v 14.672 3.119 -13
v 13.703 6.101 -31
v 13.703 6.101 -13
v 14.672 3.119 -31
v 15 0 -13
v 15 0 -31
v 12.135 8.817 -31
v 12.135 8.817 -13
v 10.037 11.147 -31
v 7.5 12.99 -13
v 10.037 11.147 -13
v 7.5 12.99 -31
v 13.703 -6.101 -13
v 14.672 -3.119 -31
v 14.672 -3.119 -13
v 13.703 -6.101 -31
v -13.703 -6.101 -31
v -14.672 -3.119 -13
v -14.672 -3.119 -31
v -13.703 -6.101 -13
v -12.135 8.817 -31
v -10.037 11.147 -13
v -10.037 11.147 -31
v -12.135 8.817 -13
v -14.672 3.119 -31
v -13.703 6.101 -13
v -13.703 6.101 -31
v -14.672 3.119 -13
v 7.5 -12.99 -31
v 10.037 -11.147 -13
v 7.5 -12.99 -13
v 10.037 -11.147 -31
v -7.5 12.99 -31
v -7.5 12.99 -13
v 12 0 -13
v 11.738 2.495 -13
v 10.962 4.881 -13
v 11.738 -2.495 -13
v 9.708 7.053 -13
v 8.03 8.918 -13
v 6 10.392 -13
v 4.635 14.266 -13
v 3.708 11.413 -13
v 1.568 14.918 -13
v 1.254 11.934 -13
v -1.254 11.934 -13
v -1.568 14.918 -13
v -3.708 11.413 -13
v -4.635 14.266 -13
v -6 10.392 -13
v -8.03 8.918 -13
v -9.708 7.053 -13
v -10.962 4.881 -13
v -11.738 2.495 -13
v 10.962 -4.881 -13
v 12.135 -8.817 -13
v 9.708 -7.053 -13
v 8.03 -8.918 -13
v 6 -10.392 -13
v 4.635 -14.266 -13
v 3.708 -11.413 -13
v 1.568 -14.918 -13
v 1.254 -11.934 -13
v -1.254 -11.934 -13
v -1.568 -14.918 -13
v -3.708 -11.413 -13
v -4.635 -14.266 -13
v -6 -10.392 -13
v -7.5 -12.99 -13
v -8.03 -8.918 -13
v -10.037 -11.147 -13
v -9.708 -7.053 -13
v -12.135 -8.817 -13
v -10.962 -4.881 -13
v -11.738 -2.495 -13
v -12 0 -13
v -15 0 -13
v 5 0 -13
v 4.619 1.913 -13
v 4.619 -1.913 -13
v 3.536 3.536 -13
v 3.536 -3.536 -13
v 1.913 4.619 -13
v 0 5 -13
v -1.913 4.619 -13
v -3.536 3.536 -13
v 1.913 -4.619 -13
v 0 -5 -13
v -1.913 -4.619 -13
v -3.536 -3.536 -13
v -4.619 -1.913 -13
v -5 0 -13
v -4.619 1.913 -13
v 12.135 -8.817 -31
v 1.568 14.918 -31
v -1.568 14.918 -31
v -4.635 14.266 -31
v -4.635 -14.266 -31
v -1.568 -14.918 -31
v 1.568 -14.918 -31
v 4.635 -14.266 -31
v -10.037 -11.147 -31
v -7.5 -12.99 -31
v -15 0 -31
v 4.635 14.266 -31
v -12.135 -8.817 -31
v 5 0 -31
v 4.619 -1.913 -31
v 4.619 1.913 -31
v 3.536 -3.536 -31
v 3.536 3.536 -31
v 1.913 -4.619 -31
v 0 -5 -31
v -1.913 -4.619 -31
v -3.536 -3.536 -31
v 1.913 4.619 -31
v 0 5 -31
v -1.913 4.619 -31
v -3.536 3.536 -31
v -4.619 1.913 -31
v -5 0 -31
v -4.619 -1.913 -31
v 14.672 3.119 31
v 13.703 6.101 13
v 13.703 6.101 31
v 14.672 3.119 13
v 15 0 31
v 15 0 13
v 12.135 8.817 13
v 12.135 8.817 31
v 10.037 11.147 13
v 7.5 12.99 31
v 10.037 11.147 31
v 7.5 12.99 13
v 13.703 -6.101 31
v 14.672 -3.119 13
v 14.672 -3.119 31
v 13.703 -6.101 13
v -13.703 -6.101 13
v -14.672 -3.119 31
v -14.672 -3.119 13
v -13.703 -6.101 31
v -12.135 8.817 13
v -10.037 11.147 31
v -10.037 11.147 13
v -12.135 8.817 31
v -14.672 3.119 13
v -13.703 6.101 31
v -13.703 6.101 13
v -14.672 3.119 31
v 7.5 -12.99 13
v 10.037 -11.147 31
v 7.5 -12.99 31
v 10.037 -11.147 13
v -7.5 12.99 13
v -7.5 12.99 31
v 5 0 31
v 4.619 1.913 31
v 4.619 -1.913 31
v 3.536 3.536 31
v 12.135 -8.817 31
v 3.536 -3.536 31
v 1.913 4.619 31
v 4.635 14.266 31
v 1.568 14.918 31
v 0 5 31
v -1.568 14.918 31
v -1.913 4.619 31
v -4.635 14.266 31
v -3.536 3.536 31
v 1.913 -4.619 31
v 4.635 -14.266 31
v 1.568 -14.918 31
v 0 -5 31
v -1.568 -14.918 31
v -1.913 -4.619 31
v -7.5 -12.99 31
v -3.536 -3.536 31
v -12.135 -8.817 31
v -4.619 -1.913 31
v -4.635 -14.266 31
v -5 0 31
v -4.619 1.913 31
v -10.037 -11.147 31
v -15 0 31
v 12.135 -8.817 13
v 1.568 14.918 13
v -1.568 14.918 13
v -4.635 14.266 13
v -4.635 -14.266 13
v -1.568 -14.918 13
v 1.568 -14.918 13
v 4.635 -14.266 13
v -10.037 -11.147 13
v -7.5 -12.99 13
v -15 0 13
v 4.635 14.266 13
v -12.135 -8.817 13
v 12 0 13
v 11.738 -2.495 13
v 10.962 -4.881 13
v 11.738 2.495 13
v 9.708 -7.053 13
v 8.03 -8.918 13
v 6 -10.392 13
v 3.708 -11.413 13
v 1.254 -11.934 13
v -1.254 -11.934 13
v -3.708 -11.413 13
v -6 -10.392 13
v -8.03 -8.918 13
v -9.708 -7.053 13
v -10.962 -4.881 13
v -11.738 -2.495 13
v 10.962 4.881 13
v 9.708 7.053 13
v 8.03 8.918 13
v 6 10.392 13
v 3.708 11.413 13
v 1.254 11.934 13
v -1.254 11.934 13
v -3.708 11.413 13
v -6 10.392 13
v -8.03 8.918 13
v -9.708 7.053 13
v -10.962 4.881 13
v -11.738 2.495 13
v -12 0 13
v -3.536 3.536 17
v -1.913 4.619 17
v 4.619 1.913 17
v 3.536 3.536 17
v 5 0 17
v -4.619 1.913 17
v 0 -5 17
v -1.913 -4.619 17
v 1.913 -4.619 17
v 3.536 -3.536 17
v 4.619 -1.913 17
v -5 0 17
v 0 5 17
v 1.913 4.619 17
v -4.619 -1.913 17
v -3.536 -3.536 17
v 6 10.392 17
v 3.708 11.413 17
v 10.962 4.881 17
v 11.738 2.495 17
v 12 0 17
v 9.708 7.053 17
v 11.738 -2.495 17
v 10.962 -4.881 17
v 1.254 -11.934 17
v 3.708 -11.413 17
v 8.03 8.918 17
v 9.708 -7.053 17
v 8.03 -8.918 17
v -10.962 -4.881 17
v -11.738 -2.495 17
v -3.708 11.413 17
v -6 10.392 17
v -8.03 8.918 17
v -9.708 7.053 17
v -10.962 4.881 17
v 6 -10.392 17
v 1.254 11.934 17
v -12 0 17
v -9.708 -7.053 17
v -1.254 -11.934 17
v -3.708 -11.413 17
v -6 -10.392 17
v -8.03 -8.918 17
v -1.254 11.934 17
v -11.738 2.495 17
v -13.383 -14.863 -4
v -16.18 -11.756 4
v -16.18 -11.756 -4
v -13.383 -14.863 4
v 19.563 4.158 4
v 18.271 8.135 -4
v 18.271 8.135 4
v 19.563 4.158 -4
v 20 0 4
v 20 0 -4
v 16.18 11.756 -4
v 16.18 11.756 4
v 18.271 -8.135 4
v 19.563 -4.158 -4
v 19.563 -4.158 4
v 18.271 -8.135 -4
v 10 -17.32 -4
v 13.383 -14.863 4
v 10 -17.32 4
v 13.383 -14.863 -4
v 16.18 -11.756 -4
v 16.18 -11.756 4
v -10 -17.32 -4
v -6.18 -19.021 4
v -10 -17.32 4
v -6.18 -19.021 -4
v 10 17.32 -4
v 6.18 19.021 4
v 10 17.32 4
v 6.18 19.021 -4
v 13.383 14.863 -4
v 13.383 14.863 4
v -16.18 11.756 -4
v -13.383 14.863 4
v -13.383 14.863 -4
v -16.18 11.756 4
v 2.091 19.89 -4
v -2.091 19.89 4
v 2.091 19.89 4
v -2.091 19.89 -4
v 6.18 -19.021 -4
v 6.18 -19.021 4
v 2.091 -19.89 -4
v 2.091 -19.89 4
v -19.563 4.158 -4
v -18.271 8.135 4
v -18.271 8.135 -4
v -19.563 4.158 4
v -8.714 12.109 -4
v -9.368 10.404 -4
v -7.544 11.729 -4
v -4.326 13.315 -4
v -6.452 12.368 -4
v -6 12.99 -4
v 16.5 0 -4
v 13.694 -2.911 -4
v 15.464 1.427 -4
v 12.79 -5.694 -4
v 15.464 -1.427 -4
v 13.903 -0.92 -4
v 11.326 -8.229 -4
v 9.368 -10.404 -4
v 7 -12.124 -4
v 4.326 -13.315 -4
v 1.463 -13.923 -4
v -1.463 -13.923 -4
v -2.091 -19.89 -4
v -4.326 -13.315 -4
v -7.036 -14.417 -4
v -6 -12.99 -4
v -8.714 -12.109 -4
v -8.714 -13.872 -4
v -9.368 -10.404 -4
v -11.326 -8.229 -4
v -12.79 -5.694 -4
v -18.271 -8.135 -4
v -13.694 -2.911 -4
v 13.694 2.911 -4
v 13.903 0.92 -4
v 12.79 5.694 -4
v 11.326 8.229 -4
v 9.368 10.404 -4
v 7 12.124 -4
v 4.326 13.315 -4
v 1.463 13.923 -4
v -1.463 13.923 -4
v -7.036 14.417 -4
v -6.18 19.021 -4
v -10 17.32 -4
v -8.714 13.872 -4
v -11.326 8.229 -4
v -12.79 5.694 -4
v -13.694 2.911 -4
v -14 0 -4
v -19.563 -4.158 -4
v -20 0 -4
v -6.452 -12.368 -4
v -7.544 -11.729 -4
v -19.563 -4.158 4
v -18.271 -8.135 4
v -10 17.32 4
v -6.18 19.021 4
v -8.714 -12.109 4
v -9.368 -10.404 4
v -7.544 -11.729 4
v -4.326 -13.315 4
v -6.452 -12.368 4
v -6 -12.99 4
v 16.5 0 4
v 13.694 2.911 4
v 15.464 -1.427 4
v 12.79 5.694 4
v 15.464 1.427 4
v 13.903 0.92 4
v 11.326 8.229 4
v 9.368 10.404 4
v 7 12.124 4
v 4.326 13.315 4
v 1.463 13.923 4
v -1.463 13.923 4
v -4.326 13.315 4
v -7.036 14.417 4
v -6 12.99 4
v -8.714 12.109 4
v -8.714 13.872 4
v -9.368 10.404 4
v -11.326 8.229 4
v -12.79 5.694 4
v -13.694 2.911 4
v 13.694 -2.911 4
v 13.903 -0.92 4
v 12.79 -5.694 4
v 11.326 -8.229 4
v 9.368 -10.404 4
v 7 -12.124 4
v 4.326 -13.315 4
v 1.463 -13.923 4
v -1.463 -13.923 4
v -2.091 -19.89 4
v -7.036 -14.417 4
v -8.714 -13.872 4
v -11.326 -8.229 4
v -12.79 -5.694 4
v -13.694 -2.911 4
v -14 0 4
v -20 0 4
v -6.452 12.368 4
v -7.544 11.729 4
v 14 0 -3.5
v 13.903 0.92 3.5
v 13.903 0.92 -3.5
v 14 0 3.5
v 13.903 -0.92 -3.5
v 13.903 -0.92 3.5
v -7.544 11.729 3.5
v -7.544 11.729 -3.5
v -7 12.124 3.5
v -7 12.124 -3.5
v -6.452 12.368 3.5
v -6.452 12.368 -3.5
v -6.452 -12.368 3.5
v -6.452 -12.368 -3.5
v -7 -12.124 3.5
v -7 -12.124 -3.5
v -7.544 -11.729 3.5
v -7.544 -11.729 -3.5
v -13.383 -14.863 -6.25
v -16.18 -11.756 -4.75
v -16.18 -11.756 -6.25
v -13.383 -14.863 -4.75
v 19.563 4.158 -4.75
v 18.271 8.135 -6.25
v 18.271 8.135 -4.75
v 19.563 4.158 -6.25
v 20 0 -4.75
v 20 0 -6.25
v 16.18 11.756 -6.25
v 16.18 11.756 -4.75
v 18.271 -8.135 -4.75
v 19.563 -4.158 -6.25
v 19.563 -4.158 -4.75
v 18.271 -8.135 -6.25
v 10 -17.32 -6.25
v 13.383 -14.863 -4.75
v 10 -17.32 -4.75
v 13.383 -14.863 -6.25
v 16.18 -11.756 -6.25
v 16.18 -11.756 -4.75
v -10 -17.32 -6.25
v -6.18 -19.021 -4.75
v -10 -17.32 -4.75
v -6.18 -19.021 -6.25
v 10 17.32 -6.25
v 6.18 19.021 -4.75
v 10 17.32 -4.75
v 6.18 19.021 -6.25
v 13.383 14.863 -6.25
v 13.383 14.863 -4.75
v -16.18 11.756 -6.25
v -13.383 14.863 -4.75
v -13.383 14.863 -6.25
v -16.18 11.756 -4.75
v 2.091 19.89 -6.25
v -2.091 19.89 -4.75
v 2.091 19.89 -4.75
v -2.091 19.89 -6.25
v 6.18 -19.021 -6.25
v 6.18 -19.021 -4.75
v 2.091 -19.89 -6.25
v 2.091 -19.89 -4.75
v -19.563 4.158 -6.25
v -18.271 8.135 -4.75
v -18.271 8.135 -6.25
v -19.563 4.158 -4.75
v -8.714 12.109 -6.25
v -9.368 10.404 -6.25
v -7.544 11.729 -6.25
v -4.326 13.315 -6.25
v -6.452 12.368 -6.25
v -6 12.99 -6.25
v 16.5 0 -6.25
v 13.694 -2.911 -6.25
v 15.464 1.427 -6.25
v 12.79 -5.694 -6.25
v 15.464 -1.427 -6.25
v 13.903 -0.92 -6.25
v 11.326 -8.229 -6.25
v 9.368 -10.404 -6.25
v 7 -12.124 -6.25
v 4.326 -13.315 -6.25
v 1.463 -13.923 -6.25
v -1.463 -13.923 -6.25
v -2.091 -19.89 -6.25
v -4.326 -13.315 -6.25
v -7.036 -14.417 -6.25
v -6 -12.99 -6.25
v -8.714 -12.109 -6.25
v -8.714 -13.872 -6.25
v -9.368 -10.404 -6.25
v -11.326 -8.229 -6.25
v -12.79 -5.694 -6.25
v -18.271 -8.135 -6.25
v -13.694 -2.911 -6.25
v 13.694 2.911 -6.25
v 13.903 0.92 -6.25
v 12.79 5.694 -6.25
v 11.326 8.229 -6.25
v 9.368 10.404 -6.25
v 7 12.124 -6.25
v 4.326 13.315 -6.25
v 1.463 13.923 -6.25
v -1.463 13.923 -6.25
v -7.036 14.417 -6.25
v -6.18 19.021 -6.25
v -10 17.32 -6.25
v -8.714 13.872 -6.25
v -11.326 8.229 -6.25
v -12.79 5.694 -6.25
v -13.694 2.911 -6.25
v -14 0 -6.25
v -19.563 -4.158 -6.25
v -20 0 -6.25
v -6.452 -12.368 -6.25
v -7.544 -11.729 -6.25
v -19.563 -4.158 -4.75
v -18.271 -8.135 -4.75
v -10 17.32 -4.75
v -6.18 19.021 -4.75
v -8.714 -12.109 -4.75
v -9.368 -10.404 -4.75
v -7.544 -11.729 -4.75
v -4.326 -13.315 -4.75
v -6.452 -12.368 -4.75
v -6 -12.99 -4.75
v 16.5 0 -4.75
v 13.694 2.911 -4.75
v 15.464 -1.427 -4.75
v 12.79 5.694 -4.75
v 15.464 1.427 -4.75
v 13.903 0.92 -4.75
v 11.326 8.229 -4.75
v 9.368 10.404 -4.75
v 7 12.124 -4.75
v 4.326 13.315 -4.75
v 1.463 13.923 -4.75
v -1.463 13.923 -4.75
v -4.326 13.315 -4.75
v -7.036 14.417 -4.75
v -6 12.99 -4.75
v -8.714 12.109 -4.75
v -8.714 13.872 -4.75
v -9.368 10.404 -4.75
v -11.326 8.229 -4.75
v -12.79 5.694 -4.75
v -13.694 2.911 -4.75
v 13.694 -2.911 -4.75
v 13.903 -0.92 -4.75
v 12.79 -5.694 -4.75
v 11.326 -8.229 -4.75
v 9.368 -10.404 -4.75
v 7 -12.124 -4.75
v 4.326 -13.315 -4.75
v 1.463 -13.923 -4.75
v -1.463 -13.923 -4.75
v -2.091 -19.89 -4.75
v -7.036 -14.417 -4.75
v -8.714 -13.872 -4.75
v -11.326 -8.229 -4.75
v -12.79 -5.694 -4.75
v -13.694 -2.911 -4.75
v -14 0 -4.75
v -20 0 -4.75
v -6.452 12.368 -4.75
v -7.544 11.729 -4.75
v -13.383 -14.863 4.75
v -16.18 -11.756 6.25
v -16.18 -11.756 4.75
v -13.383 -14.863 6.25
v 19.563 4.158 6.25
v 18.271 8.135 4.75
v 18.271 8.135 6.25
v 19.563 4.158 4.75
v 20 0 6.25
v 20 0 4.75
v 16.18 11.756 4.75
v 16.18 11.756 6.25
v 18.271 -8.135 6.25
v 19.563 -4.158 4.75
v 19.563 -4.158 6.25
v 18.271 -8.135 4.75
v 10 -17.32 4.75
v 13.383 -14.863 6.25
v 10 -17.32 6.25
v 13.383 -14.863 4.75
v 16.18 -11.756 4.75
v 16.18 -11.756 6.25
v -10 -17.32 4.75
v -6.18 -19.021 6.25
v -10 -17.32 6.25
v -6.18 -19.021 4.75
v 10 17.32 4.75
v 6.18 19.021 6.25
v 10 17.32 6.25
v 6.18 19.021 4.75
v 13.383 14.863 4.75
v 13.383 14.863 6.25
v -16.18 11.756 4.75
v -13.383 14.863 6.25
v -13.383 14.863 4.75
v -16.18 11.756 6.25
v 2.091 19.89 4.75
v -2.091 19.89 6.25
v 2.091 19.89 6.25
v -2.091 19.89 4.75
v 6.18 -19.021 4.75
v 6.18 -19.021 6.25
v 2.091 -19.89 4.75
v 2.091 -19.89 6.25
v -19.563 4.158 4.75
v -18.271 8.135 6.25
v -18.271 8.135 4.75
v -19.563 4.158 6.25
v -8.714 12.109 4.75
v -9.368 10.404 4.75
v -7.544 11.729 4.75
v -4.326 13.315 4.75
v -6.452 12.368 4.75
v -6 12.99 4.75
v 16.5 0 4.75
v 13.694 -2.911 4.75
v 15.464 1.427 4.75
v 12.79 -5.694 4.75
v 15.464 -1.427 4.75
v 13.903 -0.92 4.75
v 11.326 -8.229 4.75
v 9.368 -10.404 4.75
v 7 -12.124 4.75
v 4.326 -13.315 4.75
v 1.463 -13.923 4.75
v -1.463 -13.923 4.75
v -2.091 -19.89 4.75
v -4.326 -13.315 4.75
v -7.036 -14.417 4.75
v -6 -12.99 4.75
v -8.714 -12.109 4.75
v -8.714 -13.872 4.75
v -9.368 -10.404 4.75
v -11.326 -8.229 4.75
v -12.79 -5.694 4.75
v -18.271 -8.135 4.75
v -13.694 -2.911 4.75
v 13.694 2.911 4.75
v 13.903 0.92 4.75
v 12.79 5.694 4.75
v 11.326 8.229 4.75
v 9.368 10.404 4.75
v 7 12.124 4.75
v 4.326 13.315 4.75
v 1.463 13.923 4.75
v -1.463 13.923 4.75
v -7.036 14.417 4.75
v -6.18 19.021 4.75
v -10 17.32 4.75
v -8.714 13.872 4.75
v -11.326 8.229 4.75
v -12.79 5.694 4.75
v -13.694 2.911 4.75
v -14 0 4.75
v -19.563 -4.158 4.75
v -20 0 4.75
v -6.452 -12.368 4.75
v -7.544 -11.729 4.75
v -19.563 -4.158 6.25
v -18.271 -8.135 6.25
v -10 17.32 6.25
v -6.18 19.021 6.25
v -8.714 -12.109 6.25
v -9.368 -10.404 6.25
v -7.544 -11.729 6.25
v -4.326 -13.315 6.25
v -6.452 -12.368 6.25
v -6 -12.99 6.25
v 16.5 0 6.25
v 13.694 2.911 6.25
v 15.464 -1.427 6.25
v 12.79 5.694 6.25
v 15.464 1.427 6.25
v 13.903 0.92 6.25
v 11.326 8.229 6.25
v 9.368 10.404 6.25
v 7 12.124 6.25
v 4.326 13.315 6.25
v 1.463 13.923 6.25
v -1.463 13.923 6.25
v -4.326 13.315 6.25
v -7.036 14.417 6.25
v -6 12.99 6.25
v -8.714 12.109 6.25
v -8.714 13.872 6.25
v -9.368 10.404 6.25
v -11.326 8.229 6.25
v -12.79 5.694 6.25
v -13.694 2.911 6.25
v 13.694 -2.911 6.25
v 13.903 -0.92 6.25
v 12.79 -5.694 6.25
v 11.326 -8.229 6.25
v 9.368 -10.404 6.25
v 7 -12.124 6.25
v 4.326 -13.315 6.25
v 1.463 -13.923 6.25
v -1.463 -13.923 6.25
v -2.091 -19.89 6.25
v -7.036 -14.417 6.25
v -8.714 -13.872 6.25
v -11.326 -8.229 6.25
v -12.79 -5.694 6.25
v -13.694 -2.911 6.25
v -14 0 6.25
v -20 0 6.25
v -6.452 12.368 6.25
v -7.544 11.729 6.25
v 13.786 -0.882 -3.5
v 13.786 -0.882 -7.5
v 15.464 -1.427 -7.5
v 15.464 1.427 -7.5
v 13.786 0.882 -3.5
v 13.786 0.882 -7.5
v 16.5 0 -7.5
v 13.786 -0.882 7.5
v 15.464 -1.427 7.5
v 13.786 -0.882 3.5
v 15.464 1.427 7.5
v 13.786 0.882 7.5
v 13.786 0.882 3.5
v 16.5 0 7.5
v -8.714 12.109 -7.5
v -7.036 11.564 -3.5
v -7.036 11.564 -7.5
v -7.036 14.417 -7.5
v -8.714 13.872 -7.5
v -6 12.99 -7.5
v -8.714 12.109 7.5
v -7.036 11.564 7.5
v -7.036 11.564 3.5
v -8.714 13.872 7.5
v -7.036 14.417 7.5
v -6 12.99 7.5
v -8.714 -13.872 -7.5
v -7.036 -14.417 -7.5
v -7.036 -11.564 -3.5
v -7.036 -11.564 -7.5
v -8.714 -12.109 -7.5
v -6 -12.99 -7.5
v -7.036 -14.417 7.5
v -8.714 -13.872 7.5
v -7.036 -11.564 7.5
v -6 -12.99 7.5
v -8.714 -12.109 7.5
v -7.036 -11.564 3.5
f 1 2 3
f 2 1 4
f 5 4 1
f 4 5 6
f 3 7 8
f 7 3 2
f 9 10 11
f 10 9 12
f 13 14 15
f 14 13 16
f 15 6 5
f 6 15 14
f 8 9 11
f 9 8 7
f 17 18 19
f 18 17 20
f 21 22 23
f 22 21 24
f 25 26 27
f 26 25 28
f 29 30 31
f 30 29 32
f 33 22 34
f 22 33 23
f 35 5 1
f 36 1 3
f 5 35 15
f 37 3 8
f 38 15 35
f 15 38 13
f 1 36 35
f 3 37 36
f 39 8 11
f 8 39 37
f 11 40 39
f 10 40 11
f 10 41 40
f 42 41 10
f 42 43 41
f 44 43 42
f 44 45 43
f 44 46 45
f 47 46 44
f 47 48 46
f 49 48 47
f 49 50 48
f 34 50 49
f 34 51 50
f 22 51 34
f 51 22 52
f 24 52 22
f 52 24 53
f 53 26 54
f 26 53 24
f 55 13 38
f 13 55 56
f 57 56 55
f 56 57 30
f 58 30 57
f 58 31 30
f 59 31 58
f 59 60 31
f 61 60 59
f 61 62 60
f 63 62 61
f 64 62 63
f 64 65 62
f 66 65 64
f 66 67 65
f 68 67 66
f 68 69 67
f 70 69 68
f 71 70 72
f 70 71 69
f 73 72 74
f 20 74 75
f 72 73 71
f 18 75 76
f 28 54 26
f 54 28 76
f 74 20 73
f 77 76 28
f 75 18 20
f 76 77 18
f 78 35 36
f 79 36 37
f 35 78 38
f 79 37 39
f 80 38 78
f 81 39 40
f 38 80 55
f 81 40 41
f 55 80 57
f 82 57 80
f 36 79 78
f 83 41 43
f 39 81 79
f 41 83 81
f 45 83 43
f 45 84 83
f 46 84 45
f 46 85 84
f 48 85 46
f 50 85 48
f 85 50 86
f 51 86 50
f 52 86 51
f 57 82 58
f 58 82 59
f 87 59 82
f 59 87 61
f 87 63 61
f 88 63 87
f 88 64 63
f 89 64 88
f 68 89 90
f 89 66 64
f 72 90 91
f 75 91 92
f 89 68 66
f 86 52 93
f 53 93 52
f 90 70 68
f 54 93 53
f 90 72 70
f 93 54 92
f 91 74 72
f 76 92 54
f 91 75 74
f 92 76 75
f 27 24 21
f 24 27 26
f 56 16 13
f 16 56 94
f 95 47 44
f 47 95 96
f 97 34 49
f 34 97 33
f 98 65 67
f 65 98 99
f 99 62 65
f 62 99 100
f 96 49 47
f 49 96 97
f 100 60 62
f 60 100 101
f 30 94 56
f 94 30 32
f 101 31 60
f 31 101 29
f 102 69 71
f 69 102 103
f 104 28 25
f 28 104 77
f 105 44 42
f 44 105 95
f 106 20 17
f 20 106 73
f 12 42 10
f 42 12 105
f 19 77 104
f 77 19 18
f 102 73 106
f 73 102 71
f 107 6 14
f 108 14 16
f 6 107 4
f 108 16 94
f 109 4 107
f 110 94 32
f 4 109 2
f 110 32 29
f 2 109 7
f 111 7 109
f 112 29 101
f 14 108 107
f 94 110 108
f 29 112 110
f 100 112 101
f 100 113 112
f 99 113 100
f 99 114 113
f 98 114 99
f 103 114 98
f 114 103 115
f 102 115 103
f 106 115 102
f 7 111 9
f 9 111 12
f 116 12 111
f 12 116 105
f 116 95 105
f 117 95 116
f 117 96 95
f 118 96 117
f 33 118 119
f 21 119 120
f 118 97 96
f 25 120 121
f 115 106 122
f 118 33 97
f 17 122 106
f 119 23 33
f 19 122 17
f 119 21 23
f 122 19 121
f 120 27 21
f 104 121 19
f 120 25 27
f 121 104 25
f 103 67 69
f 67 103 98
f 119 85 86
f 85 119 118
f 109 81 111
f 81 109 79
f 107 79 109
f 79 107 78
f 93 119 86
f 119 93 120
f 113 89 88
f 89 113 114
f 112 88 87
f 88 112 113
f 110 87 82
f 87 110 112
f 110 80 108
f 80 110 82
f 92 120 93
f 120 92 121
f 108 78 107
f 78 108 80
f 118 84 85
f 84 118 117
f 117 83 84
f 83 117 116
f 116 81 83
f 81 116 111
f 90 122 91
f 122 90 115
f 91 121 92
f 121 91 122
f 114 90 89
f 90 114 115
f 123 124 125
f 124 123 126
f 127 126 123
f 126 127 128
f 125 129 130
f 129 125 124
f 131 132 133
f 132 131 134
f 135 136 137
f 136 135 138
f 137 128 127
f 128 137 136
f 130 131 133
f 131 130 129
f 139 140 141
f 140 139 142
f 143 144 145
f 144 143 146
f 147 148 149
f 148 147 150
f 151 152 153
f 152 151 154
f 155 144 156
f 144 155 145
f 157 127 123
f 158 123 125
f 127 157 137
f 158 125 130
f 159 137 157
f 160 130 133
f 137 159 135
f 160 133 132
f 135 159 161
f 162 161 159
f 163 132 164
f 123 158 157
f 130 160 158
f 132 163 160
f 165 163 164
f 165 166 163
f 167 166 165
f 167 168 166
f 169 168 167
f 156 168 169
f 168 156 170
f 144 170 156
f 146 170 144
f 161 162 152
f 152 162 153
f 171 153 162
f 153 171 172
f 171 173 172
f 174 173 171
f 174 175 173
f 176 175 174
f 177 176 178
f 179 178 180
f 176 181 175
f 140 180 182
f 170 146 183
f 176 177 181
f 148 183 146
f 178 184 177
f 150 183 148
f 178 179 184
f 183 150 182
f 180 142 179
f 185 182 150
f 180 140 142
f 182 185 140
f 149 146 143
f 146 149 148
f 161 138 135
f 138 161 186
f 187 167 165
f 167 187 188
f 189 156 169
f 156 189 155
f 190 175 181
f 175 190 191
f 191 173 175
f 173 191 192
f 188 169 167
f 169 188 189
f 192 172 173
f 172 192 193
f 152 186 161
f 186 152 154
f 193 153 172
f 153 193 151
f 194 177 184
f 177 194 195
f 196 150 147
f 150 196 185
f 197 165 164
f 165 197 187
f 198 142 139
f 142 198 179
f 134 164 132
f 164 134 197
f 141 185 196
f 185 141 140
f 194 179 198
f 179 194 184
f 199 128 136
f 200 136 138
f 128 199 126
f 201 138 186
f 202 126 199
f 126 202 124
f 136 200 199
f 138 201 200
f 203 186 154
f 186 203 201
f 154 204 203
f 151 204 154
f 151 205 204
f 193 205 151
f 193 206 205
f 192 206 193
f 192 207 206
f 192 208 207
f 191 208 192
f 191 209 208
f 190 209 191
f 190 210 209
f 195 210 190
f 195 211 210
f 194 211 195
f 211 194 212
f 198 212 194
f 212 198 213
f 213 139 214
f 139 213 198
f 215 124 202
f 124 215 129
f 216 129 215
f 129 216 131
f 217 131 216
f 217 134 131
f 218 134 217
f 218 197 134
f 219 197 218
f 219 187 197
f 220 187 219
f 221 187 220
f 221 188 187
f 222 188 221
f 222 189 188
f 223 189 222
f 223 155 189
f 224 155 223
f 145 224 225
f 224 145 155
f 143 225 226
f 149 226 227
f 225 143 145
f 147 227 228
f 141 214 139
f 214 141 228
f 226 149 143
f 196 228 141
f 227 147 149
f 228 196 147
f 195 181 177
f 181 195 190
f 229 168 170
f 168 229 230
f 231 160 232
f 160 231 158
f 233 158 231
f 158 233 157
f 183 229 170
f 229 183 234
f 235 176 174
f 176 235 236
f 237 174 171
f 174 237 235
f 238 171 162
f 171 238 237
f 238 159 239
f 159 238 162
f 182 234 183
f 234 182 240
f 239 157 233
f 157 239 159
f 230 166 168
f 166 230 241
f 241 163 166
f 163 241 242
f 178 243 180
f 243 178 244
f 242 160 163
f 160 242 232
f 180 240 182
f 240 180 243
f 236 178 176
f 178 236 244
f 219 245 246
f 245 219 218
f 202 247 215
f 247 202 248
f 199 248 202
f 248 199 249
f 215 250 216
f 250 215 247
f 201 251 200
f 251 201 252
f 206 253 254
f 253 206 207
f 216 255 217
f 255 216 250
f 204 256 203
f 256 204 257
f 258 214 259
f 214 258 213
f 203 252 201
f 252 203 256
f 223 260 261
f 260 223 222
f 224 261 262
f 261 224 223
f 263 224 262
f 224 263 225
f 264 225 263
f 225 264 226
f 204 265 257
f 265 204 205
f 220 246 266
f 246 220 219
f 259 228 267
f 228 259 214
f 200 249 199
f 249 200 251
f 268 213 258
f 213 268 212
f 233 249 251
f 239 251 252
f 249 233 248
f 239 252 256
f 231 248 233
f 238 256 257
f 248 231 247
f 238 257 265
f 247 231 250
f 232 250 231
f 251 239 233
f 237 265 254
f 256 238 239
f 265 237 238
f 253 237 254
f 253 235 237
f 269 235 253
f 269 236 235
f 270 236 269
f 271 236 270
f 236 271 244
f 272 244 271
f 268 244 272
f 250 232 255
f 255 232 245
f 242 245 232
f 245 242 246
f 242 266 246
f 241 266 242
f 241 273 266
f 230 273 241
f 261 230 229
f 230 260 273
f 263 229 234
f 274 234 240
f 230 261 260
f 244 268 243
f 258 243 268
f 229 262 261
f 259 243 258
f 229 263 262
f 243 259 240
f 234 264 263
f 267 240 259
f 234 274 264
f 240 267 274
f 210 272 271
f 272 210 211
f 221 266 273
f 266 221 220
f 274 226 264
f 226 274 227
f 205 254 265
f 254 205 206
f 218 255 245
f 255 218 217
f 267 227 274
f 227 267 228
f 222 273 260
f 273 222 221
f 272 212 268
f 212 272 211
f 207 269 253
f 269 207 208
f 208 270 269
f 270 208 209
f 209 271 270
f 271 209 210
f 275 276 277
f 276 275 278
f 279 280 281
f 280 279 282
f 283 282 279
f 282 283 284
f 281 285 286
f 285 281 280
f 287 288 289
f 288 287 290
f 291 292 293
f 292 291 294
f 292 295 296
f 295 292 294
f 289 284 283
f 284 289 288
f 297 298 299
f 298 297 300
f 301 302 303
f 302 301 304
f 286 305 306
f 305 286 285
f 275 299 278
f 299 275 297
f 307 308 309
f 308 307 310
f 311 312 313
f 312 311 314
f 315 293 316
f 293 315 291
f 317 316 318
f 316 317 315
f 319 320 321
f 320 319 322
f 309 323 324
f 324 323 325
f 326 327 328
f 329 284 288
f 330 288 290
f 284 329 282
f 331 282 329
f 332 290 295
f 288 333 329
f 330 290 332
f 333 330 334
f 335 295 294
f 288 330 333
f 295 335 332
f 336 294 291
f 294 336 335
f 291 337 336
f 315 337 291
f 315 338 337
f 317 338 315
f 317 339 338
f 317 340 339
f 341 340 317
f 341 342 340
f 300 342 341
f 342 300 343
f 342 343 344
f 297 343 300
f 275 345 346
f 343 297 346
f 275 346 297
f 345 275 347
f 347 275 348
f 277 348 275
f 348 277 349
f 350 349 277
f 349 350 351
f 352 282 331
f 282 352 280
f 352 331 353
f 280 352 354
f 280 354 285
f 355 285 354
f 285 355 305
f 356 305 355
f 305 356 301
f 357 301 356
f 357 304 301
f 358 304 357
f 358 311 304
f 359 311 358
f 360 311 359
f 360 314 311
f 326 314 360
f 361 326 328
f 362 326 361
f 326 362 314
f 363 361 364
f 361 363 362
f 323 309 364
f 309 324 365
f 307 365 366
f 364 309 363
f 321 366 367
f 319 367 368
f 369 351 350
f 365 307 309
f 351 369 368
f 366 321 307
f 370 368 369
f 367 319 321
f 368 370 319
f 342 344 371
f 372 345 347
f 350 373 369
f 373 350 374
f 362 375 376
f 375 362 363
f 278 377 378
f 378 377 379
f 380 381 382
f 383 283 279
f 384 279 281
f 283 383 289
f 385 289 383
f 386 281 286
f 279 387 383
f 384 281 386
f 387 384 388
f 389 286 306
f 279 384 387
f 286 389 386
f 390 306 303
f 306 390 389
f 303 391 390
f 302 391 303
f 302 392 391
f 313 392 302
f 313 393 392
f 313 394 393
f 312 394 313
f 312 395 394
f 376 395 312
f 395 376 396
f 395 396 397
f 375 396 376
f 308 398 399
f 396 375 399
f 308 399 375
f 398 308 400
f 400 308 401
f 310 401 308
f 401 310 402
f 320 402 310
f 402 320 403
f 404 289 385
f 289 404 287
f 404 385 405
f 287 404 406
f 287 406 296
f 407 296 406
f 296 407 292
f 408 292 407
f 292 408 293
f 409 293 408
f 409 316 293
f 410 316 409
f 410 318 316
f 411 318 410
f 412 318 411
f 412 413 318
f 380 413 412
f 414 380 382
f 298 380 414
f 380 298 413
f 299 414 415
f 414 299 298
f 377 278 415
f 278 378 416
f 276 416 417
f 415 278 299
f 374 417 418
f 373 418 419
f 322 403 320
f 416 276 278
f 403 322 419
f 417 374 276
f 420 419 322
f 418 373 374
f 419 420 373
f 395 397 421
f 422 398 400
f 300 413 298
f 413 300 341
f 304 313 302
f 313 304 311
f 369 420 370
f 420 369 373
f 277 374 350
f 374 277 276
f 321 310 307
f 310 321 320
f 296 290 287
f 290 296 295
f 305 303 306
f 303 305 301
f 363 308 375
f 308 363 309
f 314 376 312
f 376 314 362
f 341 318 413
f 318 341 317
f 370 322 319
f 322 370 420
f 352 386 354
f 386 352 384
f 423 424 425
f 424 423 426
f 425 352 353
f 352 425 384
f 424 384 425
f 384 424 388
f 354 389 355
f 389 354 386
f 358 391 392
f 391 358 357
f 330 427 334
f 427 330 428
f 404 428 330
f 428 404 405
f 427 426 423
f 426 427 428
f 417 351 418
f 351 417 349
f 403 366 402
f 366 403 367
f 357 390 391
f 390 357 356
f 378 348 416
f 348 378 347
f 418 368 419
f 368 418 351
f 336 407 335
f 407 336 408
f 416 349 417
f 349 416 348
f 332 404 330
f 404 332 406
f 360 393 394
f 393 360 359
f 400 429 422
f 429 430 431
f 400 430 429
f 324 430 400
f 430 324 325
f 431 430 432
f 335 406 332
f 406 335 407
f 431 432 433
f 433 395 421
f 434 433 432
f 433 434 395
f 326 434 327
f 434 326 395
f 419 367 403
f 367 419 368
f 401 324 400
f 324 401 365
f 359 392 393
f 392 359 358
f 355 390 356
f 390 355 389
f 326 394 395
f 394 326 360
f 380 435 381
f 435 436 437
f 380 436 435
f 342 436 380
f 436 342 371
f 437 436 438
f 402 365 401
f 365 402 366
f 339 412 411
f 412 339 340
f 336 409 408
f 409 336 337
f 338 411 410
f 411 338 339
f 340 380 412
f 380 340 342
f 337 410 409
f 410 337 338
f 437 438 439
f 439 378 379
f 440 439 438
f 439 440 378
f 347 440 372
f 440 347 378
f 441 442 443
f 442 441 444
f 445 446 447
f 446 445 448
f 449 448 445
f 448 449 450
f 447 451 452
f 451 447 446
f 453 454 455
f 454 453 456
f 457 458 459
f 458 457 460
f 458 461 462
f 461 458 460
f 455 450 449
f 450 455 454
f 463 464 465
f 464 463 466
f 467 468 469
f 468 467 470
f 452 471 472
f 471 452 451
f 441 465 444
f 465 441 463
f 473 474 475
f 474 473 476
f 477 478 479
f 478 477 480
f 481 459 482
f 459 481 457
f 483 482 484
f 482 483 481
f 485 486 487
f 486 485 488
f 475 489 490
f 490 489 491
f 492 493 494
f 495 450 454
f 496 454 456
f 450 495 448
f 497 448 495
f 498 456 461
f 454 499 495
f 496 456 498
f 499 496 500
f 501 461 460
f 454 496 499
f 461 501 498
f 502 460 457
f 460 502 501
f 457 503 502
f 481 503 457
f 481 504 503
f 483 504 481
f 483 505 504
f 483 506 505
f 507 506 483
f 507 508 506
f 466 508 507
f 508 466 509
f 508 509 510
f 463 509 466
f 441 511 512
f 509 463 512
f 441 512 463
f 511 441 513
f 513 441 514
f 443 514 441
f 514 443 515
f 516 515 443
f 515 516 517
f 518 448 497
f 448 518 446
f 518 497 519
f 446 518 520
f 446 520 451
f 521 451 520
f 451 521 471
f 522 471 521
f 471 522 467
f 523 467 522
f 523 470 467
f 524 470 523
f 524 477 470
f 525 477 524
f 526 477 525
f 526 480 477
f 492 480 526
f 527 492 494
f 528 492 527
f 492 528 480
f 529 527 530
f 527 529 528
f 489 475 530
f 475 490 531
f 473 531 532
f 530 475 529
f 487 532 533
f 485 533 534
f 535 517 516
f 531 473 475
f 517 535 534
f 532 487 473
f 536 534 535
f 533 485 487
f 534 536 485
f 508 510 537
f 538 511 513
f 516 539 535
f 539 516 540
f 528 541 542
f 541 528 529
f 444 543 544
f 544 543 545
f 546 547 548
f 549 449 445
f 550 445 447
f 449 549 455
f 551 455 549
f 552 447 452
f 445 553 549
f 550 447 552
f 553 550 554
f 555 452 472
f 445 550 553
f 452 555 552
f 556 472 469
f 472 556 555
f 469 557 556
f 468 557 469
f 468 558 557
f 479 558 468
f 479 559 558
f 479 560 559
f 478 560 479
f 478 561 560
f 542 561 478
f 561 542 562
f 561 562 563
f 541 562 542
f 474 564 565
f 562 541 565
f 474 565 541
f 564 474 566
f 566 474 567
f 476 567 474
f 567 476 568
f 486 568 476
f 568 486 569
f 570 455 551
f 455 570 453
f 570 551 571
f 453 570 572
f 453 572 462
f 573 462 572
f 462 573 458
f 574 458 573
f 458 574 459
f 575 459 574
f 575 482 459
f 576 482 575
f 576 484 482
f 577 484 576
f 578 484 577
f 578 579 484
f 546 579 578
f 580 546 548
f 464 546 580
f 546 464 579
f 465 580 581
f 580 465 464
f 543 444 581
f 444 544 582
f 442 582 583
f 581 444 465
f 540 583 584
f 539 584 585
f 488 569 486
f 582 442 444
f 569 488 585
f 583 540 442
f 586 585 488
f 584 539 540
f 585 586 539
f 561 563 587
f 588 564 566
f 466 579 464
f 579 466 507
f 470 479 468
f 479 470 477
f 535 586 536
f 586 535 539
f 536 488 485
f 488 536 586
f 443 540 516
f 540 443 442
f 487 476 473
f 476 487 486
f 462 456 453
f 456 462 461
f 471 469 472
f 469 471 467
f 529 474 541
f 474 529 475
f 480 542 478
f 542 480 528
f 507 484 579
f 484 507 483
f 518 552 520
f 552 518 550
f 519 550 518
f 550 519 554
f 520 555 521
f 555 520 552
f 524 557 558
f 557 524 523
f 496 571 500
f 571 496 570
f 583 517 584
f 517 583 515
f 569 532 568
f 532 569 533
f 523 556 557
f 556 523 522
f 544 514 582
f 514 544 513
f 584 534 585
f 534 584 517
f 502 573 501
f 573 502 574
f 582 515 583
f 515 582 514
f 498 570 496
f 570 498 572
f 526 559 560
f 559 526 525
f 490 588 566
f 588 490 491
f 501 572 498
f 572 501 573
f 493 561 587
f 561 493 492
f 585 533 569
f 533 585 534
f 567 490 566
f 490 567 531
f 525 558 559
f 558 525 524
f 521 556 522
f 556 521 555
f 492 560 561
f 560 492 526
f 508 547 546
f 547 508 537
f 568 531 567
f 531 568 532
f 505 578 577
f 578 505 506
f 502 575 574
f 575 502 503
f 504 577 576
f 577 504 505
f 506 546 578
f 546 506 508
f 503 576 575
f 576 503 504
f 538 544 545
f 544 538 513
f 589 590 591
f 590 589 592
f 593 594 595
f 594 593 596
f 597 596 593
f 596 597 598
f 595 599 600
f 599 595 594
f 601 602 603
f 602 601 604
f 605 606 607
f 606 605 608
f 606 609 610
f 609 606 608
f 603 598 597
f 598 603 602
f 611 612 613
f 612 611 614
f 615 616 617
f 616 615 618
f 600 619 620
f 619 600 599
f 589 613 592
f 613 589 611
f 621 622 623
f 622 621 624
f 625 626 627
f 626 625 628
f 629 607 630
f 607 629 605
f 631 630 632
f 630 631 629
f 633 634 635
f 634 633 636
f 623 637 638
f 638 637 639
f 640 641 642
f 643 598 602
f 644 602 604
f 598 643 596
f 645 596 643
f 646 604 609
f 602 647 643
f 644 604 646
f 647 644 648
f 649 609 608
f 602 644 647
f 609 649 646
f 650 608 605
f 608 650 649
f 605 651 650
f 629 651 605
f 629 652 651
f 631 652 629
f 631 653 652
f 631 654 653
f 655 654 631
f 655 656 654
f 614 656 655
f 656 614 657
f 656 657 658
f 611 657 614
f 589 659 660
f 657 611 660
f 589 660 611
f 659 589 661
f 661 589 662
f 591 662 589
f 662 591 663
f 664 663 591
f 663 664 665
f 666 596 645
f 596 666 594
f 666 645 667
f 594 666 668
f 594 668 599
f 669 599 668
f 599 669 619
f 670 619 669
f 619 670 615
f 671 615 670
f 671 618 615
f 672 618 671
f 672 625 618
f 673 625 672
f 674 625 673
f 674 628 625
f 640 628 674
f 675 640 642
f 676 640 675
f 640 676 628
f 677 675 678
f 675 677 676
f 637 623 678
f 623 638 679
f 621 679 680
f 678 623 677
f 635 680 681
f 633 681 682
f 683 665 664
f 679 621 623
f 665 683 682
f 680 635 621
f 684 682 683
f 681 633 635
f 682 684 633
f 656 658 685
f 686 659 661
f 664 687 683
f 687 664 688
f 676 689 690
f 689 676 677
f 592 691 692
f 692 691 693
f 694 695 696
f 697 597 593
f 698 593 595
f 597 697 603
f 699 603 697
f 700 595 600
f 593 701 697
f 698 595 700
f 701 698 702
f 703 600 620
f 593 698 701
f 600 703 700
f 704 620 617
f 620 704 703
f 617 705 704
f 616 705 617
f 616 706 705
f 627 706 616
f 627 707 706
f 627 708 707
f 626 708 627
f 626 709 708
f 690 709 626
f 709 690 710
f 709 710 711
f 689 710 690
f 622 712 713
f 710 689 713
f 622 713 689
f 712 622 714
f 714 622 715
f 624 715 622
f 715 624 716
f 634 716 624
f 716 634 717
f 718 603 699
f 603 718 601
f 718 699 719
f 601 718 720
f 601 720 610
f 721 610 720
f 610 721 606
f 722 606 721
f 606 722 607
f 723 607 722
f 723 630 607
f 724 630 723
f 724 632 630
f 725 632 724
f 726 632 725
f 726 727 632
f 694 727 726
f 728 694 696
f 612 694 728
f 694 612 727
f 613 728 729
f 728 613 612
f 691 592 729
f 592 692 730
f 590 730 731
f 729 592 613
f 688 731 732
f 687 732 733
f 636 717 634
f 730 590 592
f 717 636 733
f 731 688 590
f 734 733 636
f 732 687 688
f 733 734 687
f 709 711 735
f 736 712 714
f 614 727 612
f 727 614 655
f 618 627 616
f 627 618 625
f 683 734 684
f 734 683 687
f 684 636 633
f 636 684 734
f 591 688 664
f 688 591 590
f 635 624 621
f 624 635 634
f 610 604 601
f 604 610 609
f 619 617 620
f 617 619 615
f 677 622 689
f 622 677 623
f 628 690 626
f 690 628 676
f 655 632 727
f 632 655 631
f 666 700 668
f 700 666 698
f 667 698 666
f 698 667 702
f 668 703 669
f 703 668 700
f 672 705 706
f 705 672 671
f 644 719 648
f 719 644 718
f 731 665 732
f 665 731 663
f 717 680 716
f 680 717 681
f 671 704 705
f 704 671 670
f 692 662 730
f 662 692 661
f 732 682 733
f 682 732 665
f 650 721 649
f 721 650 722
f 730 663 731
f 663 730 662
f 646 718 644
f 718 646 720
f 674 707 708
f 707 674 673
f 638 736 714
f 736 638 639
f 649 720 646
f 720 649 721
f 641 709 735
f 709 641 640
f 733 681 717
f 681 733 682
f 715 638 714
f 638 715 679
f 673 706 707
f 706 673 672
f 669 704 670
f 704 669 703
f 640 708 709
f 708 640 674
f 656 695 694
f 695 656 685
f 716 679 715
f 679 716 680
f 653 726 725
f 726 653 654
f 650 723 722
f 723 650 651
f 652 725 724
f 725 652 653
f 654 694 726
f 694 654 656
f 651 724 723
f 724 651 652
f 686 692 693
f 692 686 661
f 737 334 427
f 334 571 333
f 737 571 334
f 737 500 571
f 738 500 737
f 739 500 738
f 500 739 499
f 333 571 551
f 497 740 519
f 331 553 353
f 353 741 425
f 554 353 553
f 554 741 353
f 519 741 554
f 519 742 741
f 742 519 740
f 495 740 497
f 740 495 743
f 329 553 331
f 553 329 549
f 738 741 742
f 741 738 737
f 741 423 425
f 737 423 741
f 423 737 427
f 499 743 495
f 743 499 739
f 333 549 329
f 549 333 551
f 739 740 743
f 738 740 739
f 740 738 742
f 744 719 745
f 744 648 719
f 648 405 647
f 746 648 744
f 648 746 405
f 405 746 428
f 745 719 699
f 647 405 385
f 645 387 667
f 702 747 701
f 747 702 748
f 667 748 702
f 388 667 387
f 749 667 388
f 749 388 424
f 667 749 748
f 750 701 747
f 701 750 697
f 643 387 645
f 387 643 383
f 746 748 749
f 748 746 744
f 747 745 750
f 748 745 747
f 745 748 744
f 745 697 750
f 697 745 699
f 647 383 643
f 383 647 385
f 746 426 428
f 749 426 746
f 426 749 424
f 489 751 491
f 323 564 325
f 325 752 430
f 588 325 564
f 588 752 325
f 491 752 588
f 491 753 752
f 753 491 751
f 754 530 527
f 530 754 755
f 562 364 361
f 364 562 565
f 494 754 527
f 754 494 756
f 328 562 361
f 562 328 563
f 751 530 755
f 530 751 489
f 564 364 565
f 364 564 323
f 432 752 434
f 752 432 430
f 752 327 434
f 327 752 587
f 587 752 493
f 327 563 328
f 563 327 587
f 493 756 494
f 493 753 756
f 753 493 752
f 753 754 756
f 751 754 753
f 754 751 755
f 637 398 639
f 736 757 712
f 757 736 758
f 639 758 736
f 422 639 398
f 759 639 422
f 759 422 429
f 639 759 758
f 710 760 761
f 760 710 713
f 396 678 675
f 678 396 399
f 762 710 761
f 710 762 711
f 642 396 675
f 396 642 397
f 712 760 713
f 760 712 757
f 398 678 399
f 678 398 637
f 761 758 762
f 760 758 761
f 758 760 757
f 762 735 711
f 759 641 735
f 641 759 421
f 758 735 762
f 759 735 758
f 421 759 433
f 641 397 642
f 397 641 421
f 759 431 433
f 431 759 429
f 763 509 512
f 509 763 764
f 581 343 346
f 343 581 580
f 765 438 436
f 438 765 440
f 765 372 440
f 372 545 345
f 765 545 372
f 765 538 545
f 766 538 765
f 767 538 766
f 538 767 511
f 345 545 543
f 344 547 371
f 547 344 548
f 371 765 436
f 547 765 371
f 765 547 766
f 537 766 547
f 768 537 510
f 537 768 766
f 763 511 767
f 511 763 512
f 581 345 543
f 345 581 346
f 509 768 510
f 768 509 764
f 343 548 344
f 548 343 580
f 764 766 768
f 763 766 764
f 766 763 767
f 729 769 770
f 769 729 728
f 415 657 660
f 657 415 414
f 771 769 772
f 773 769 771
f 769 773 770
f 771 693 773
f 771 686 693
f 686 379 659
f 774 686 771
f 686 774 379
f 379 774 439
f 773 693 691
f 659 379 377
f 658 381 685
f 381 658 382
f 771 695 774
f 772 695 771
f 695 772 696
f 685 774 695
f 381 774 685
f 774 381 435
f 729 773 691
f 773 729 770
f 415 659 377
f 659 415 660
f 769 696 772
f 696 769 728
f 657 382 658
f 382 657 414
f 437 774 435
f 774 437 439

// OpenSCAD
// Parameters
hub_diameter = 30;
hub_length = 18; // Shortened to match the original model
shaft_hole_diameter = 10;
flexible_element_outer_diameter = 40;
flexible_element_inner_diameter = 28;
flexible_element_thickness = 8; // Reduced thickness to better integrate with hubs
retaining_ring_thickness = 1.5; // Reduced thickness to make it more flush
screw_diameter = 3;
screw_length = 4; // Shortened to make screws less exposed
num_screws = 3;
screw_spacing_radius = 15;

// Input Shaft Hub
module input_shaft_hub() {
    difference() {
        cylinder(d=hub_diameter, h=hub_length, center=true);
        cylinder(d=shaft_hole_diameter, h=hub_length + 2, center=true);
        translate([0, 0, hub_length / 2])
            cylinder(d=hub_diameter * 0.8, h=4, center=false); // Added smoother transition
    }
}

// Output Shaft Hub
module output_shaft_hub() {
    difference() {
        cylinder(d=hub_diameter, h=hub_length, center=true);
        cylinder(d=shaft_hole_diameter, h=hub_length + 2, center=true);
        translate([0, 0, -hub_length / 2])
            cylinder(d=hub_diameter * 0.8, h=4, center=false); // Added smoother transition
    }
}

// Flexible Element
module flexible_element() {
    difference() {
        translate([0, 0, -flexible_element_thickness / 2])
            cylinder(d=flexible_element_outer_diameter, h=flexible_element_thickness, center=false);
        translate([0, 0, -flexible_element_thickness / 2 - 1])
            cylinder(d=flexible_element_inner_diameter, h=flexible_element_thickness + 2, center=false);
    }
}

// Retaining Ring
module retaining_ring() {
    difference() {
        cylinder(d=flexible_element_outer_diameter, h=retaining_ring_thickness, center=true);
        cylinder(d=flexible_element_inner_diameter, h=retaining_ring_thickness + 2, center=true);
    }
}

// Fastening Screws
module fastening_screw() {
    translate([0, 0, -screw_length / 2])
        cylinder(d=screw_diameter, h=screw_length, center=false);
}

// Assembly
module coupling_assembly() {
    translate([0, 0, -hub_length - flexible_element_thickness / 2])
        input_shaft_hub();
    
    translate([0, 0, hub_length + flexible_element_thickness / 2])
        output_shaft_hub();
    
    translate([0, 0, 0])
        flexible_element();
    
    translate([0, 0, -flexible_element_thickness / 2 - retaining_ring_thickness])
        retaining_ring();
    
    translate([0, 0, flexible_element_thickness / 2 + retaining_ring_thickness])
        retaining_ring();
    
    for (i = [0:num_screws-1]) {
        angle = i * 360 / num_screws;
        translate([screw_spacing_radius * cos(angle), screw_spacing_radius * sin(angle), -flexible_element_thickness / 2 - retaining_ring_thickness])
            fastening_screw();
        
        translate([screw_spacing_radius * cos(angle), screw_spacing_radius * sin(angle), flexible_element_thickness / 2 + retaining_ring_thickness])
            fastening_screw();
    }
}

// Render the coupling assembly
coupling_assembly();
